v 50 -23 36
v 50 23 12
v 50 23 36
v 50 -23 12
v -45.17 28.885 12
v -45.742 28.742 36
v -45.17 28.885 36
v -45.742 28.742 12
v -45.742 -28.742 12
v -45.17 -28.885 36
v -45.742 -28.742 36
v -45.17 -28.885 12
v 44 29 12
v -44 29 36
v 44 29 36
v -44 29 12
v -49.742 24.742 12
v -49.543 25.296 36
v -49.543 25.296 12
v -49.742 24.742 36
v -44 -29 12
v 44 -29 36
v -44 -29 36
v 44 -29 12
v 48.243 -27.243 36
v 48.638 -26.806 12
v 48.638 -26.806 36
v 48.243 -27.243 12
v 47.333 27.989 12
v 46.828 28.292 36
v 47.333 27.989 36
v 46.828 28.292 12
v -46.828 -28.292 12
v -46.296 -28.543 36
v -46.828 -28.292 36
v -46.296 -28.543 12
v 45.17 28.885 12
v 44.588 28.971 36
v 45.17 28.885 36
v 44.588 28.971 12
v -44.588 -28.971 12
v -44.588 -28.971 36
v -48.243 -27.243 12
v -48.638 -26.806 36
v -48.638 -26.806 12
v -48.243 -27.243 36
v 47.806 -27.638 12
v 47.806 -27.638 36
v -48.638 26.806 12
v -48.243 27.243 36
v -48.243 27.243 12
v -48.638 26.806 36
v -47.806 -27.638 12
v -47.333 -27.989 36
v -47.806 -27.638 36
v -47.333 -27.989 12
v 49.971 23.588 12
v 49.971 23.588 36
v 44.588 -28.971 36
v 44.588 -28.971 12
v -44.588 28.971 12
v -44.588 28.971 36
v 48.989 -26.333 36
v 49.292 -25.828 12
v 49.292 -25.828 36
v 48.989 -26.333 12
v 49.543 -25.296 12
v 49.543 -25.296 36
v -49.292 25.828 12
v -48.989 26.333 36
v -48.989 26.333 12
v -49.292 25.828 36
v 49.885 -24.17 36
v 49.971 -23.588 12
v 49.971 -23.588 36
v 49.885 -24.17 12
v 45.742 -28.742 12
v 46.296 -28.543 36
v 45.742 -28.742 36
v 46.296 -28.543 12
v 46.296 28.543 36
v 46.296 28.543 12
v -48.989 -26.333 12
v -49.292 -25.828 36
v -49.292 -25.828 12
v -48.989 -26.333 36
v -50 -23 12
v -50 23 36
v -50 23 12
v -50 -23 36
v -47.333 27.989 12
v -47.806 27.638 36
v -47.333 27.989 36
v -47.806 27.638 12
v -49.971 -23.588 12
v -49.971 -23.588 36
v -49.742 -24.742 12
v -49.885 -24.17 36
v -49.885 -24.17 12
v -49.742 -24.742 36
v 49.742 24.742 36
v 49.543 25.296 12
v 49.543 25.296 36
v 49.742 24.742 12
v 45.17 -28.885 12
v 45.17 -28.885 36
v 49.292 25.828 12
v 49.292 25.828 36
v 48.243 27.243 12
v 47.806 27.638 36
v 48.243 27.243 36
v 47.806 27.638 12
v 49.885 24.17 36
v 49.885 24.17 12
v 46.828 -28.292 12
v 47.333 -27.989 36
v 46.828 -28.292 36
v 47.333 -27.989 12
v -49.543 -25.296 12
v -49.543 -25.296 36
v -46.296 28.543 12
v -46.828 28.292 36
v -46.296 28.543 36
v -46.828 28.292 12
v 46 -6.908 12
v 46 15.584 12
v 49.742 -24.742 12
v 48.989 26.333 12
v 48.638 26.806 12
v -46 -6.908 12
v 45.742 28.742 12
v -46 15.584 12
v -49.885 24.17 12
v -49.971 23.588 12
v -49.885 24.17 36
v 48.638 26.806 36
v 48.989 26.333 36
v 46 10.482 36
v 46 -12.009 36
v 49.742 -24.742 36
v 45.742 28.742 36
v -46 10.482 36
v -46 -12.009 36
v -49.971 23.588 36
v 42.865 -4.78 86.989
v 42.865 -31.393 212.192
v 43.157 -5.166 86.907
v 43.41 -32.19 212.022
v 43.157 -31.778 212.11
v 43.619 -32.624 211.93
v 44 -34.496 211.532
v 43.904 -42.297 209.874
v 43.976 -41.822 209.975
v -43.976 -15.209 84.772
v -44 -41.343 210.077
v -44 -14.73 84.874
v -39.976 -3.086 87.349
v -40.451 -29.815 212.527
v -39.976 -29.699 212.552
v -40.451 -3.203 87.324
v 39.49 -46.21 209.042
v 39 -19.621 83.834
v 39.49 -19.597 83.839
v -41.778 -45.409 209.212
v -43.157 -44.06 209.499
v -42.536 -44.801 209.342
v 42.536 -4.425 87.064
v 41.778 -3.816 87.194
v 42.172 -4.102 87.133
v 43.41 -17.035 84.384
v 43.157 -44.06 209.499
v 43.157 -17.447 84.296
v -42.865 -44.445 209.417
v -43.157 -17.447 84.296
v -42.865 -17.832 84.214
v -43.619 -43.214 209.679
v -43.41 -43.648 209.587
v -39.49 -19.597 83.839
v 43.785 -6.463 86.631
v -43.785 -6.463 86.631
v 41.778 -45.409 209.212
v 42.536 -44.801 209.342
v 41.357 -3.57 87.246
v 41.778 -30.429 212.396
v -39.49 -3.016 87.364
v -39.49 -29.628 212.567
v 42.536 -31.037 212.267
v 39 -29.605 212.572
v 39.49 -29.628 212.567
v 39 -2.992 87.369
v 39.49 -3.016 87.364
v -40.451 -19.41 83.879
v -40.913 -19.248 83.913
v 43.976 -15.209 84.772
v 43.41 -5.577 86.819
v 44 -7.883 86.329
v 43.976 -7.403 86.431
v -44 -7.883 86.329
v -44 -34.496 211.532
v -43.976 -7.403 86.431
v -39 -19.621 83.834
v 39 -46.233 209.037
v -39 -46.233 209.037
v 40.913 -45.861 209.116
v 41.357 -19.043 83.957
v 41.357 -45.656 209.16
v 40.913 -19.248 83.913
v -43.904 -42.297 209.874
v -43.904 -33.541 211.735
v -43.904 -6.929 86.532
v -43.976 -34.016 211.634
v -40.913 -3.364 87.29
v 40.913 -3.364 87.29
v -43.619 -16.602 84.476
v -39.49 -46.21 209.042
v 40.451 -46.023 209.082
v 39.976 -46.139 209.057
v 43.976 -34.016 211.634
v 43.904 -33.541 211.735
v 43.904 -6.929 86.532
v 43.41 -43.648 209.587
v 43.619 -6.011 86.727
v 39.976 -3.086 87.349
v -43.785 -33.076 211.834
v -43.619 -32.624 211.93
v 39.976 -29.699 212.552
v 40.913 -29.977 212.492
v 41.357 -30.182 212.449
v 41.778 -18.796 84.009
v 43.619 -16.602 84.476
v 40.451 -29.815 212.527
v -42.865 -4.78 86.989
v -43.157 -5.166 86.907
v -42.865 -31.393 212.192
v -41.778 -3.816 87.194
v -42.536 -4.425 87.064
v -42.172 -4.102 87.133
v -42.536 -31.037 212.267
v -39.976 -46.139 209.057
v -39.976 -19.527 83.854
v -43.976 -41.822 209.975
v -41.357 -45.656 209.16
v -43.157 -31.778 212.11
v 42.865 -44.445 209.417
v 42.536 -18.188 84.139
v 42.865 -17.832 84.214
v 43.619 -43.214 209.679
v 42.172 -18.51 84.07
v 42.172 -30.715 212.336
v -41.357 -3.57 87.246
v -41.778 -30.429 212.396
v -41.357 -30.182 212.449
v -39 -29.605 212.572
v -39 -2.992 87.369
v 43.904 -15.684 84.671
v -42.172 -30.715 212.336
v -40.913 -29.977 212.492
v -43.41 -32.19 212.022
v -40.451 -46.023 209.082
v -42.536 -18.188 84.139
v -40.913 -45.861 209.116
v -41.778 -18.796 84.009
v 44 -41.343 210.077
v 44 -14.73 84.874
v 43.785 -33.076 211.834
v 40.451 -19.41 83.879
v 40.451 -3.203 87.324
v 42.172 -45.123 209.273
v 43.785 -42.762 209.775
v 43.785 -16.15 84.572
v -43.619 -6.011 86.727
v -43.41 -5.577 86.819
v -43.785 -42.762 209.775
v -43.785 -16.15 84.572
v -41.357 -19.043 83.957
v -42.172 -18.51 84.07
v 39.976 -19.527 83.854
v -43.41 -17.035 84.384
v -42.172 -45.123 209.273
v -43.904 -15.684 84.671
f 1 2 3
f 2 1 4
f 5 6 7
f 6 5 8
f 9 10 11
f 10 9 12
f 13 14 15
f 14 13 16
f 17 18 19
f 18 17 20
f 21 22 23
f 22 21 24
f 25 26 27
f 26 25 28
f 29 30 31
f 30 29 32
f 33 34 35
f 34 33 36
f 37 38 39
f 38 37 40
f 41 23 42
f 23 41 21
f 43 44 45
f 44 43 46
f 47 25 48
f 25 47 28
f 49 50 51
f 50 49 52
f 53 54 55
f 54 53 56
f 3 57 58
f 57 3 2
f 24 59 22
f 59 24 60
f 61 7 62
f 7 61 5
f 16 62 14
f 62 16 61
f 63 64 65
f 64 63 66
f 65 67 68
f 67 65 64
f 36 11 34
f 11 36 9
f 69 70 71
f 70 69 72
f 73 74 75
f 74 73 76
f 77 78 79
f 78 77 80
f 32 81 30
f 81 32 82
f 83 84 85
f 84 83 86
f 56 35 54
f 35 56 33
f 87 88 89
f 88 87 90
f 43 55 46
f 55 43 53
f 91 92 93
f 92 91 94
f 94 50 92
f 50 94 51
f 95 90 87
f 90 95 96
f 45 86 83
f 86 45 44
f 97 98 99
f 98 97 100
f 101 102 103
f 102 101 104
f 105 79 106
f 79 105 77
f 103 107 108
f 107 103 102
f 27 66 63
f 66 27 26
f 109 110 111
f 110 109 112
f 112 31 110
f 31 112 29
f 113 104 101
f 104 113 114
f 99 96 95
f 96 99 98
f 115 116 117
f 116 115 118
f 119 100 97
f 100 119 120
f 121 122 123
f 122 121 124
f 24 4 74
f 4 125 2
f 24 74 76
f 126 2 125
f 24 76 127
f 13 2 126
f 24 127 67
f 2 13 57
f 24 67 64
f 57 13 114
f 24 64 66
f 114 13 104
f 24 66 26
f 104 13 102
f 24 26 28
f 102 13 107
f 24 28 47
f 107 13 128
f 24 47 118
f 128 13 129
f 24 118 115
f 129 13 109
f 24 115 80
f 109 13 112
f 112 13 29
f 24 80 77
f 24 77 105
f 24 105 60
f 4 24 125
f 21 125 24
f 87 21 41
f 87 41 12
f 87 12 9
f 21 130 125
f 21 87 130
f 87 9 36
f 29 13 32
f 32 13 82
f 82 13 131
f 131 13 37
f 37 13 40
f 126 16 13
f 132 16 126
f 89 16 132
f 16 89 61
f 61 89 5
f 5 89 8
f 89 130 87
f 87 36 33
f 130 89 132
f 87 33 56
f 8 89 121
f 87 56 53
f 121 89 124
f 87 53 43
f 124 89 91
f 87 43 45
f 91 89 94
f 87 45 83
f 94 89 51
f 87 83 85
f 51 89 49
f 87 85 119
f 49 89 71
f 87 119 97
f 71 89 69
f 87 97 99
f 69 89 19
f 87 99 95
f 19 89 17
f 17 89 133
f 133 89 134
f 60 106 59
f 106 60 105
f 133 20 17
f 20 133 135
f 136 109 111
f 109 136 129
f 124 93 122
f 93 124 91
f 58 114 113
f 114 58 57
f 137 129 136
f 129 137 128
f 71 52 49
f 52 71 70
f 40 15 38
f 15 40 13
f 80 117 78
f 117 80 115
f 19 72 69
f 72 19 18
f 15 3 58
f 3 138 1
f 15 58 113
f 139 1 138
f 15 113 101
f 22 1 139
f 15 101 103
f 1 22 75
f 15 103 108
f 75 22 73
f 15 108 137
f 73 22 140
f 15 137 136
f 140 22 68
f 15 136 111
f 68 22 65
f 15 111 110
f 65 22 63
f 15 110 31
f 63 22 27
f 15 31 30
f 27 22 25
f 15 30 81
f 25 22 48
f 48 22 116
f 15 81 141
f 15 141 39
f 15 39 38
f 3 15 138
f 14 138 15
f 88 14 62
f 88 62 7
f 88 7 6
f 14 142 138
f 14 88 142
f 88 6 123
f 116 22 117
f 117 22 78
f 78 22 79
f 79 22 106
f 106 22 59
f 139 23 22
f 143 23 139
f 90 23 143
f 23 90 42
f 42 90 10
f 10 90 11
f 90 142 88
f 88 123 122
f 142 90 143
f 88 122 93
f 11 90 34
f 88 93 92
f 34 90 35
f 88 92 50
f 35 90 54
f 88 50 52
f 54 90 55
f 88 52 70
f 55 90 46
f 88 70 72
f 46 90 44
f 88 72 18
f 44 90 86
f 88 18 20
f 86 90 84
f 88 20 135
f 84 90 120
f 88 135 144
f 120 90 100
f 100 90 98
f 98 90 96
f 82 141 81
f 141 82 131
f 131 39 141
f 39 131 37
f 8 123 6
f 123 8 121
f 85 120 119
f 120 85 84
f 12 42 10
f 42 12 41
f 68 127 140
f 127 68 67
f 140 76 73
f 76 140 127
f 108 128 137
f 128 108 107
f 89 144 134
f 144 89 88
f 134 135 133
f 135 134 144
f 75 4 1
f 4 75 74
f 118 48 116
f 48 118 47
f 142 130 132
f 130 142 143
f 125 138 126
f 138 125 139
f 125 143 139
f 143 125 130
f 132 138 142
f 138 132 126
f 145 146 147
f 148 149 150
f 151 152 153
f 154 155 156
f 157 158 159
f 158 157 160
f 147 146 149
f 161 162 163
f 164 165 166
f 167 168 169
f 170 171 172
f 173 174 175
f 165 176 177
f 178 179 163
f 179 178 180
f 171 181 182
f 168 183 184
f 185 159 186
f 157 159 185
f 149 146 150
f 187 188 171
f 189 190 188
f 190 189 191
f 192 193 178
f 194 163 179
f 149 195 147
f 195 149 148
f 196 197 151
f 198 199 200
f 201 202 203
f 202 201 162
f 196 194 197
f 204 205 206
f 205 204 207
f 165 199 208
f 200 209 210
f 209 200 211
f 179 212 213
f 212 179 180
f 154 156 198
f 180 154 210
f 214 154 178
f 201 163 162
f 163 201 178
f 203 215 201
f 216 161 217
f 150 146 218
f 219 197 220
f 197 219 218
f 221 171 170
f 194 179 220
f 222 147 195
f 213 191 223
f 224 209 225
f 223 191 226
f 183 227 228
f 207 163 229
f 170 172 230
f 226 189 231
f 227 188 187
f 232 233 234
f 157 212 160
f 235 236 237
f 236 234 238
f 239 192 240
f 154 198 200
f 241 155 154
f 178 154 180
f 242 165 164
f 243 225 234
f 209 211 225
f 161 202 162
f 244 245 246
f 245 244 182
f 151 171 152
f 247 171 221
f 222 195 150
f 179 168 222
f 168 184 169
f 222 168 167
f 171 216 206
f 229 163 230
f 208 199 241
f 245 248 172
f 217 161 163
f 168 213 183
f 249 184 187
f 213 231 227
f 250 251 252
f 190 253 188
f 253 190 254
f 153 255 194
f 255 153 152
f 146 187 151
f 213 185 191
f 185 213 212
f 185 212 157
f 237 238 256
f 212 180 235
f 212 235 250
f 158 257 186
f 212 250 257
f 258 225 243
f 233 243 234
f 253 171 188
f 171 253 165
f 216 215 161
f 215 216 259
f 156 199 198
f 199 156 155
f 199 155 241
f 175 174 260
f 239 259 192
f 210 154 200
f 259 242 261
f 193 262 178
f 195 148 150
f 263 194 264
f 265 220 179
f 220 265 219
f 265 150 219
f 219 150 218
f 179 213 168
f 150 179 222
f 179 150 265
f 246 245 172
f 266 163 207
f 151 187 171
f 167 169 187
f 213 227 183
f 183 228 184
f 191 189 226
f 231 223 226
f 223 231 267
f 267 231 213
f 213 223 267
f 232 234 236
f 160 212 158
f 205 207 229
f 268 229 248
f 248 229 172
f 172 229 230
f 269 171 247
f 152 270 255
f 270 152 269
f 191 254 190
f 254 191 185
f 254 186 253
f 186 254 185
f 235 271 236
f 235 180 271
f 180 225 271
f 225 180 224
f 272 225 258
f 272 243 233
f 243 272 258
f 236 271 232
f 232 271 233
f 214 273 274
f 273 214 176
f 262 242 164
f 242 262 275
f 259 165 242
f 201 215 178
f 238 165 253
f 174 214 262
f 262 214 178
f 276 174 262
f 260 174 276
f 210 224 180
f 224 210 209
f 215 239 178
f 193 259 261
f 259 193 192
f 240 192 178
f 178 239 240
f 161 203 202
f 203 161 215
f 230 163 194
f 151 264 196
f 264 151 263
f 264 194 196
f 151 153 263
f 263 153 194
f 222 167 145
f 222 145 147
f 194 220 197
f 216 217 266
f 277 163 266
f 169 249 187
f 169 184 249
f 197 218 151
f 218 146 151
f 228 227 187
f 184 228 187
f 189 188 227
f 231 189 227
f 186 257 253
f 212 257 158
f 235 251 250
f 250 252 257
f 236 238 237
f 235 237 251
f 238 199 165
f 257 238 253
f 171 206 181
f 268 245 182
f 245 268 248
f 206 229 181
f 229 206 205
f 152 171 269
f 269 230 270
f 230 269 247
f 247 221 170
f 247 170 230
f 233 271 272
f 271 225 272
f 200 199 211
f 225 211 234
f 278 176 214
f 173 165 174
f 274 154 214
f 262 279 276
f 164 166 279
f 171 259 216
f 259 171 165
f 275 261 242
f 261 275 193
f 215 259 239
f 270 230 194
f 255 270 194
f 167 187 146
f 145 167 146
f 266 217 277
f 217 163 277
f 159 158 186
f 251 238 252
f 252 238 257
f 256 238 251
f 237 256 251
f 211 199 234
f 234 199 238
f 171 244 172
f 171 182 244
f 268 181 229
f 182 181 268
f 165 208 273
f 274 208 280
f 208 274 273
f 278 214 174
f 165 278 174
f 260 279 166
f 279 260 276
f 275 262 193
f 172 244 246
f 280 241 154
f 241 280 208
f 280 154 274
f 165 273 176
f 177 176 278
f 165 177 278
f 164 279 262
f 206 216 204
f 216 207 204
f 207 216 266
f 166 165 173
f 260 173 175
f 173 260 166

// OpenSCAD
// MiEspacioParaCelebrar — Display de sobremesa NFC + QR
// Diseño tipo soporte: base independiente + placa inclinada extraíble.
// Pensado para impresión 3D en PLA/PETG.
//
// DIMENSIONES APROXIMADAS
// Base: 100 x 58 x 24 mm
// Placa: 88 x 128 x 3 mm
// Inclinación: 12°
// Etiqueta NFC recomendada: circular 25–30 mm o adhesiva rectangular equivalente.
//
// Para exportar desde OpenSCAD:
//   part="base"  -> STL de la base
//   part="plate" -> STL de la placa
//   part="assembly" -> vista de conjunto (no es necesario imprimirla)

$fn = 64;
part = "assembly";

base_w = 100;
base_d = 58;
base_h = 24;
base_r = 6;

slot_w = 3.8;
slot_depth = 22;
slot_angle = 12;
slot_y = 2;

plate_w = 88;
plate_h = 128;
plate_t = 3.0;
plate_r = 5;

nfc_d = 30;
nfc_depth = 1.5;
nfc_center_z = 82;

qr_w = 52;
qr_h = 52;
qr_depth = 0.9;
qr_center_z = 35;

module rounded_box(w,d,h,r){
    hull(){
        for(x=[-1,1]) for(y=[-1,1])
            translate([x*(w/2-r), y*(d/2-r), 0])
                cylinder(r=r,h=h);
    }
}

module base(){
    difference(){
        translate([0,0,base_h/2])
            rounded_box(base_w,base_d,base_h,base_r);

        // Ranura inclinada para insertar la placa.
        // La ranura atraviesa prácticamente todo el ancho útil de la base.
        translate([0,slot_y,base_h-1])
            rotate([slot_angle,0,0])
                cube([plate_w+4,slot_depth,base_h+8],center=true);

        // Cavidad inferior opcional para colocar peso/lastre.
        translate([0,9,4])
            rounded_box(64,30,6,4);
    }
}

module plate(){
    // Placa frontal independiente, con esquinas redondeadas.
    difference(){
        translate([0,0,plate_h/2])
            rounded_box(plate_w,plate_t,plate_h,plate_r);

        // Alojamiento posterior para una etiqueta NFC circular.
        translate([0,-plate_t/2-0.01,nfc_center_z])
            rotate([90,0,0])
                cylinder(d=nfc_d,h=nfc_depth+0.05);

        // Receso frontal para una tarjeta/adhesivo QR de 52 x 52 mm.
        translate([0,-plate_t/2-0.02,qr_center_z])
            rotate([90,0,0])
                cube([qr_w,qr_depth,qr_h],center=true);
    }
}

module assembly(){
    base();
    // Representación visual aproximada de la placa insertada.
    translate([0,slot_y,base_h-1])
        rotate([slot_angle,0,0])
            translate([0,0,plate_h/2])
                color("white") rounded_box(plate_w,plate_t,plate_h,plate_r);
}

if(part=="base") base();
if(part=="plate") plate();
if(part=="assembly") assembly();
